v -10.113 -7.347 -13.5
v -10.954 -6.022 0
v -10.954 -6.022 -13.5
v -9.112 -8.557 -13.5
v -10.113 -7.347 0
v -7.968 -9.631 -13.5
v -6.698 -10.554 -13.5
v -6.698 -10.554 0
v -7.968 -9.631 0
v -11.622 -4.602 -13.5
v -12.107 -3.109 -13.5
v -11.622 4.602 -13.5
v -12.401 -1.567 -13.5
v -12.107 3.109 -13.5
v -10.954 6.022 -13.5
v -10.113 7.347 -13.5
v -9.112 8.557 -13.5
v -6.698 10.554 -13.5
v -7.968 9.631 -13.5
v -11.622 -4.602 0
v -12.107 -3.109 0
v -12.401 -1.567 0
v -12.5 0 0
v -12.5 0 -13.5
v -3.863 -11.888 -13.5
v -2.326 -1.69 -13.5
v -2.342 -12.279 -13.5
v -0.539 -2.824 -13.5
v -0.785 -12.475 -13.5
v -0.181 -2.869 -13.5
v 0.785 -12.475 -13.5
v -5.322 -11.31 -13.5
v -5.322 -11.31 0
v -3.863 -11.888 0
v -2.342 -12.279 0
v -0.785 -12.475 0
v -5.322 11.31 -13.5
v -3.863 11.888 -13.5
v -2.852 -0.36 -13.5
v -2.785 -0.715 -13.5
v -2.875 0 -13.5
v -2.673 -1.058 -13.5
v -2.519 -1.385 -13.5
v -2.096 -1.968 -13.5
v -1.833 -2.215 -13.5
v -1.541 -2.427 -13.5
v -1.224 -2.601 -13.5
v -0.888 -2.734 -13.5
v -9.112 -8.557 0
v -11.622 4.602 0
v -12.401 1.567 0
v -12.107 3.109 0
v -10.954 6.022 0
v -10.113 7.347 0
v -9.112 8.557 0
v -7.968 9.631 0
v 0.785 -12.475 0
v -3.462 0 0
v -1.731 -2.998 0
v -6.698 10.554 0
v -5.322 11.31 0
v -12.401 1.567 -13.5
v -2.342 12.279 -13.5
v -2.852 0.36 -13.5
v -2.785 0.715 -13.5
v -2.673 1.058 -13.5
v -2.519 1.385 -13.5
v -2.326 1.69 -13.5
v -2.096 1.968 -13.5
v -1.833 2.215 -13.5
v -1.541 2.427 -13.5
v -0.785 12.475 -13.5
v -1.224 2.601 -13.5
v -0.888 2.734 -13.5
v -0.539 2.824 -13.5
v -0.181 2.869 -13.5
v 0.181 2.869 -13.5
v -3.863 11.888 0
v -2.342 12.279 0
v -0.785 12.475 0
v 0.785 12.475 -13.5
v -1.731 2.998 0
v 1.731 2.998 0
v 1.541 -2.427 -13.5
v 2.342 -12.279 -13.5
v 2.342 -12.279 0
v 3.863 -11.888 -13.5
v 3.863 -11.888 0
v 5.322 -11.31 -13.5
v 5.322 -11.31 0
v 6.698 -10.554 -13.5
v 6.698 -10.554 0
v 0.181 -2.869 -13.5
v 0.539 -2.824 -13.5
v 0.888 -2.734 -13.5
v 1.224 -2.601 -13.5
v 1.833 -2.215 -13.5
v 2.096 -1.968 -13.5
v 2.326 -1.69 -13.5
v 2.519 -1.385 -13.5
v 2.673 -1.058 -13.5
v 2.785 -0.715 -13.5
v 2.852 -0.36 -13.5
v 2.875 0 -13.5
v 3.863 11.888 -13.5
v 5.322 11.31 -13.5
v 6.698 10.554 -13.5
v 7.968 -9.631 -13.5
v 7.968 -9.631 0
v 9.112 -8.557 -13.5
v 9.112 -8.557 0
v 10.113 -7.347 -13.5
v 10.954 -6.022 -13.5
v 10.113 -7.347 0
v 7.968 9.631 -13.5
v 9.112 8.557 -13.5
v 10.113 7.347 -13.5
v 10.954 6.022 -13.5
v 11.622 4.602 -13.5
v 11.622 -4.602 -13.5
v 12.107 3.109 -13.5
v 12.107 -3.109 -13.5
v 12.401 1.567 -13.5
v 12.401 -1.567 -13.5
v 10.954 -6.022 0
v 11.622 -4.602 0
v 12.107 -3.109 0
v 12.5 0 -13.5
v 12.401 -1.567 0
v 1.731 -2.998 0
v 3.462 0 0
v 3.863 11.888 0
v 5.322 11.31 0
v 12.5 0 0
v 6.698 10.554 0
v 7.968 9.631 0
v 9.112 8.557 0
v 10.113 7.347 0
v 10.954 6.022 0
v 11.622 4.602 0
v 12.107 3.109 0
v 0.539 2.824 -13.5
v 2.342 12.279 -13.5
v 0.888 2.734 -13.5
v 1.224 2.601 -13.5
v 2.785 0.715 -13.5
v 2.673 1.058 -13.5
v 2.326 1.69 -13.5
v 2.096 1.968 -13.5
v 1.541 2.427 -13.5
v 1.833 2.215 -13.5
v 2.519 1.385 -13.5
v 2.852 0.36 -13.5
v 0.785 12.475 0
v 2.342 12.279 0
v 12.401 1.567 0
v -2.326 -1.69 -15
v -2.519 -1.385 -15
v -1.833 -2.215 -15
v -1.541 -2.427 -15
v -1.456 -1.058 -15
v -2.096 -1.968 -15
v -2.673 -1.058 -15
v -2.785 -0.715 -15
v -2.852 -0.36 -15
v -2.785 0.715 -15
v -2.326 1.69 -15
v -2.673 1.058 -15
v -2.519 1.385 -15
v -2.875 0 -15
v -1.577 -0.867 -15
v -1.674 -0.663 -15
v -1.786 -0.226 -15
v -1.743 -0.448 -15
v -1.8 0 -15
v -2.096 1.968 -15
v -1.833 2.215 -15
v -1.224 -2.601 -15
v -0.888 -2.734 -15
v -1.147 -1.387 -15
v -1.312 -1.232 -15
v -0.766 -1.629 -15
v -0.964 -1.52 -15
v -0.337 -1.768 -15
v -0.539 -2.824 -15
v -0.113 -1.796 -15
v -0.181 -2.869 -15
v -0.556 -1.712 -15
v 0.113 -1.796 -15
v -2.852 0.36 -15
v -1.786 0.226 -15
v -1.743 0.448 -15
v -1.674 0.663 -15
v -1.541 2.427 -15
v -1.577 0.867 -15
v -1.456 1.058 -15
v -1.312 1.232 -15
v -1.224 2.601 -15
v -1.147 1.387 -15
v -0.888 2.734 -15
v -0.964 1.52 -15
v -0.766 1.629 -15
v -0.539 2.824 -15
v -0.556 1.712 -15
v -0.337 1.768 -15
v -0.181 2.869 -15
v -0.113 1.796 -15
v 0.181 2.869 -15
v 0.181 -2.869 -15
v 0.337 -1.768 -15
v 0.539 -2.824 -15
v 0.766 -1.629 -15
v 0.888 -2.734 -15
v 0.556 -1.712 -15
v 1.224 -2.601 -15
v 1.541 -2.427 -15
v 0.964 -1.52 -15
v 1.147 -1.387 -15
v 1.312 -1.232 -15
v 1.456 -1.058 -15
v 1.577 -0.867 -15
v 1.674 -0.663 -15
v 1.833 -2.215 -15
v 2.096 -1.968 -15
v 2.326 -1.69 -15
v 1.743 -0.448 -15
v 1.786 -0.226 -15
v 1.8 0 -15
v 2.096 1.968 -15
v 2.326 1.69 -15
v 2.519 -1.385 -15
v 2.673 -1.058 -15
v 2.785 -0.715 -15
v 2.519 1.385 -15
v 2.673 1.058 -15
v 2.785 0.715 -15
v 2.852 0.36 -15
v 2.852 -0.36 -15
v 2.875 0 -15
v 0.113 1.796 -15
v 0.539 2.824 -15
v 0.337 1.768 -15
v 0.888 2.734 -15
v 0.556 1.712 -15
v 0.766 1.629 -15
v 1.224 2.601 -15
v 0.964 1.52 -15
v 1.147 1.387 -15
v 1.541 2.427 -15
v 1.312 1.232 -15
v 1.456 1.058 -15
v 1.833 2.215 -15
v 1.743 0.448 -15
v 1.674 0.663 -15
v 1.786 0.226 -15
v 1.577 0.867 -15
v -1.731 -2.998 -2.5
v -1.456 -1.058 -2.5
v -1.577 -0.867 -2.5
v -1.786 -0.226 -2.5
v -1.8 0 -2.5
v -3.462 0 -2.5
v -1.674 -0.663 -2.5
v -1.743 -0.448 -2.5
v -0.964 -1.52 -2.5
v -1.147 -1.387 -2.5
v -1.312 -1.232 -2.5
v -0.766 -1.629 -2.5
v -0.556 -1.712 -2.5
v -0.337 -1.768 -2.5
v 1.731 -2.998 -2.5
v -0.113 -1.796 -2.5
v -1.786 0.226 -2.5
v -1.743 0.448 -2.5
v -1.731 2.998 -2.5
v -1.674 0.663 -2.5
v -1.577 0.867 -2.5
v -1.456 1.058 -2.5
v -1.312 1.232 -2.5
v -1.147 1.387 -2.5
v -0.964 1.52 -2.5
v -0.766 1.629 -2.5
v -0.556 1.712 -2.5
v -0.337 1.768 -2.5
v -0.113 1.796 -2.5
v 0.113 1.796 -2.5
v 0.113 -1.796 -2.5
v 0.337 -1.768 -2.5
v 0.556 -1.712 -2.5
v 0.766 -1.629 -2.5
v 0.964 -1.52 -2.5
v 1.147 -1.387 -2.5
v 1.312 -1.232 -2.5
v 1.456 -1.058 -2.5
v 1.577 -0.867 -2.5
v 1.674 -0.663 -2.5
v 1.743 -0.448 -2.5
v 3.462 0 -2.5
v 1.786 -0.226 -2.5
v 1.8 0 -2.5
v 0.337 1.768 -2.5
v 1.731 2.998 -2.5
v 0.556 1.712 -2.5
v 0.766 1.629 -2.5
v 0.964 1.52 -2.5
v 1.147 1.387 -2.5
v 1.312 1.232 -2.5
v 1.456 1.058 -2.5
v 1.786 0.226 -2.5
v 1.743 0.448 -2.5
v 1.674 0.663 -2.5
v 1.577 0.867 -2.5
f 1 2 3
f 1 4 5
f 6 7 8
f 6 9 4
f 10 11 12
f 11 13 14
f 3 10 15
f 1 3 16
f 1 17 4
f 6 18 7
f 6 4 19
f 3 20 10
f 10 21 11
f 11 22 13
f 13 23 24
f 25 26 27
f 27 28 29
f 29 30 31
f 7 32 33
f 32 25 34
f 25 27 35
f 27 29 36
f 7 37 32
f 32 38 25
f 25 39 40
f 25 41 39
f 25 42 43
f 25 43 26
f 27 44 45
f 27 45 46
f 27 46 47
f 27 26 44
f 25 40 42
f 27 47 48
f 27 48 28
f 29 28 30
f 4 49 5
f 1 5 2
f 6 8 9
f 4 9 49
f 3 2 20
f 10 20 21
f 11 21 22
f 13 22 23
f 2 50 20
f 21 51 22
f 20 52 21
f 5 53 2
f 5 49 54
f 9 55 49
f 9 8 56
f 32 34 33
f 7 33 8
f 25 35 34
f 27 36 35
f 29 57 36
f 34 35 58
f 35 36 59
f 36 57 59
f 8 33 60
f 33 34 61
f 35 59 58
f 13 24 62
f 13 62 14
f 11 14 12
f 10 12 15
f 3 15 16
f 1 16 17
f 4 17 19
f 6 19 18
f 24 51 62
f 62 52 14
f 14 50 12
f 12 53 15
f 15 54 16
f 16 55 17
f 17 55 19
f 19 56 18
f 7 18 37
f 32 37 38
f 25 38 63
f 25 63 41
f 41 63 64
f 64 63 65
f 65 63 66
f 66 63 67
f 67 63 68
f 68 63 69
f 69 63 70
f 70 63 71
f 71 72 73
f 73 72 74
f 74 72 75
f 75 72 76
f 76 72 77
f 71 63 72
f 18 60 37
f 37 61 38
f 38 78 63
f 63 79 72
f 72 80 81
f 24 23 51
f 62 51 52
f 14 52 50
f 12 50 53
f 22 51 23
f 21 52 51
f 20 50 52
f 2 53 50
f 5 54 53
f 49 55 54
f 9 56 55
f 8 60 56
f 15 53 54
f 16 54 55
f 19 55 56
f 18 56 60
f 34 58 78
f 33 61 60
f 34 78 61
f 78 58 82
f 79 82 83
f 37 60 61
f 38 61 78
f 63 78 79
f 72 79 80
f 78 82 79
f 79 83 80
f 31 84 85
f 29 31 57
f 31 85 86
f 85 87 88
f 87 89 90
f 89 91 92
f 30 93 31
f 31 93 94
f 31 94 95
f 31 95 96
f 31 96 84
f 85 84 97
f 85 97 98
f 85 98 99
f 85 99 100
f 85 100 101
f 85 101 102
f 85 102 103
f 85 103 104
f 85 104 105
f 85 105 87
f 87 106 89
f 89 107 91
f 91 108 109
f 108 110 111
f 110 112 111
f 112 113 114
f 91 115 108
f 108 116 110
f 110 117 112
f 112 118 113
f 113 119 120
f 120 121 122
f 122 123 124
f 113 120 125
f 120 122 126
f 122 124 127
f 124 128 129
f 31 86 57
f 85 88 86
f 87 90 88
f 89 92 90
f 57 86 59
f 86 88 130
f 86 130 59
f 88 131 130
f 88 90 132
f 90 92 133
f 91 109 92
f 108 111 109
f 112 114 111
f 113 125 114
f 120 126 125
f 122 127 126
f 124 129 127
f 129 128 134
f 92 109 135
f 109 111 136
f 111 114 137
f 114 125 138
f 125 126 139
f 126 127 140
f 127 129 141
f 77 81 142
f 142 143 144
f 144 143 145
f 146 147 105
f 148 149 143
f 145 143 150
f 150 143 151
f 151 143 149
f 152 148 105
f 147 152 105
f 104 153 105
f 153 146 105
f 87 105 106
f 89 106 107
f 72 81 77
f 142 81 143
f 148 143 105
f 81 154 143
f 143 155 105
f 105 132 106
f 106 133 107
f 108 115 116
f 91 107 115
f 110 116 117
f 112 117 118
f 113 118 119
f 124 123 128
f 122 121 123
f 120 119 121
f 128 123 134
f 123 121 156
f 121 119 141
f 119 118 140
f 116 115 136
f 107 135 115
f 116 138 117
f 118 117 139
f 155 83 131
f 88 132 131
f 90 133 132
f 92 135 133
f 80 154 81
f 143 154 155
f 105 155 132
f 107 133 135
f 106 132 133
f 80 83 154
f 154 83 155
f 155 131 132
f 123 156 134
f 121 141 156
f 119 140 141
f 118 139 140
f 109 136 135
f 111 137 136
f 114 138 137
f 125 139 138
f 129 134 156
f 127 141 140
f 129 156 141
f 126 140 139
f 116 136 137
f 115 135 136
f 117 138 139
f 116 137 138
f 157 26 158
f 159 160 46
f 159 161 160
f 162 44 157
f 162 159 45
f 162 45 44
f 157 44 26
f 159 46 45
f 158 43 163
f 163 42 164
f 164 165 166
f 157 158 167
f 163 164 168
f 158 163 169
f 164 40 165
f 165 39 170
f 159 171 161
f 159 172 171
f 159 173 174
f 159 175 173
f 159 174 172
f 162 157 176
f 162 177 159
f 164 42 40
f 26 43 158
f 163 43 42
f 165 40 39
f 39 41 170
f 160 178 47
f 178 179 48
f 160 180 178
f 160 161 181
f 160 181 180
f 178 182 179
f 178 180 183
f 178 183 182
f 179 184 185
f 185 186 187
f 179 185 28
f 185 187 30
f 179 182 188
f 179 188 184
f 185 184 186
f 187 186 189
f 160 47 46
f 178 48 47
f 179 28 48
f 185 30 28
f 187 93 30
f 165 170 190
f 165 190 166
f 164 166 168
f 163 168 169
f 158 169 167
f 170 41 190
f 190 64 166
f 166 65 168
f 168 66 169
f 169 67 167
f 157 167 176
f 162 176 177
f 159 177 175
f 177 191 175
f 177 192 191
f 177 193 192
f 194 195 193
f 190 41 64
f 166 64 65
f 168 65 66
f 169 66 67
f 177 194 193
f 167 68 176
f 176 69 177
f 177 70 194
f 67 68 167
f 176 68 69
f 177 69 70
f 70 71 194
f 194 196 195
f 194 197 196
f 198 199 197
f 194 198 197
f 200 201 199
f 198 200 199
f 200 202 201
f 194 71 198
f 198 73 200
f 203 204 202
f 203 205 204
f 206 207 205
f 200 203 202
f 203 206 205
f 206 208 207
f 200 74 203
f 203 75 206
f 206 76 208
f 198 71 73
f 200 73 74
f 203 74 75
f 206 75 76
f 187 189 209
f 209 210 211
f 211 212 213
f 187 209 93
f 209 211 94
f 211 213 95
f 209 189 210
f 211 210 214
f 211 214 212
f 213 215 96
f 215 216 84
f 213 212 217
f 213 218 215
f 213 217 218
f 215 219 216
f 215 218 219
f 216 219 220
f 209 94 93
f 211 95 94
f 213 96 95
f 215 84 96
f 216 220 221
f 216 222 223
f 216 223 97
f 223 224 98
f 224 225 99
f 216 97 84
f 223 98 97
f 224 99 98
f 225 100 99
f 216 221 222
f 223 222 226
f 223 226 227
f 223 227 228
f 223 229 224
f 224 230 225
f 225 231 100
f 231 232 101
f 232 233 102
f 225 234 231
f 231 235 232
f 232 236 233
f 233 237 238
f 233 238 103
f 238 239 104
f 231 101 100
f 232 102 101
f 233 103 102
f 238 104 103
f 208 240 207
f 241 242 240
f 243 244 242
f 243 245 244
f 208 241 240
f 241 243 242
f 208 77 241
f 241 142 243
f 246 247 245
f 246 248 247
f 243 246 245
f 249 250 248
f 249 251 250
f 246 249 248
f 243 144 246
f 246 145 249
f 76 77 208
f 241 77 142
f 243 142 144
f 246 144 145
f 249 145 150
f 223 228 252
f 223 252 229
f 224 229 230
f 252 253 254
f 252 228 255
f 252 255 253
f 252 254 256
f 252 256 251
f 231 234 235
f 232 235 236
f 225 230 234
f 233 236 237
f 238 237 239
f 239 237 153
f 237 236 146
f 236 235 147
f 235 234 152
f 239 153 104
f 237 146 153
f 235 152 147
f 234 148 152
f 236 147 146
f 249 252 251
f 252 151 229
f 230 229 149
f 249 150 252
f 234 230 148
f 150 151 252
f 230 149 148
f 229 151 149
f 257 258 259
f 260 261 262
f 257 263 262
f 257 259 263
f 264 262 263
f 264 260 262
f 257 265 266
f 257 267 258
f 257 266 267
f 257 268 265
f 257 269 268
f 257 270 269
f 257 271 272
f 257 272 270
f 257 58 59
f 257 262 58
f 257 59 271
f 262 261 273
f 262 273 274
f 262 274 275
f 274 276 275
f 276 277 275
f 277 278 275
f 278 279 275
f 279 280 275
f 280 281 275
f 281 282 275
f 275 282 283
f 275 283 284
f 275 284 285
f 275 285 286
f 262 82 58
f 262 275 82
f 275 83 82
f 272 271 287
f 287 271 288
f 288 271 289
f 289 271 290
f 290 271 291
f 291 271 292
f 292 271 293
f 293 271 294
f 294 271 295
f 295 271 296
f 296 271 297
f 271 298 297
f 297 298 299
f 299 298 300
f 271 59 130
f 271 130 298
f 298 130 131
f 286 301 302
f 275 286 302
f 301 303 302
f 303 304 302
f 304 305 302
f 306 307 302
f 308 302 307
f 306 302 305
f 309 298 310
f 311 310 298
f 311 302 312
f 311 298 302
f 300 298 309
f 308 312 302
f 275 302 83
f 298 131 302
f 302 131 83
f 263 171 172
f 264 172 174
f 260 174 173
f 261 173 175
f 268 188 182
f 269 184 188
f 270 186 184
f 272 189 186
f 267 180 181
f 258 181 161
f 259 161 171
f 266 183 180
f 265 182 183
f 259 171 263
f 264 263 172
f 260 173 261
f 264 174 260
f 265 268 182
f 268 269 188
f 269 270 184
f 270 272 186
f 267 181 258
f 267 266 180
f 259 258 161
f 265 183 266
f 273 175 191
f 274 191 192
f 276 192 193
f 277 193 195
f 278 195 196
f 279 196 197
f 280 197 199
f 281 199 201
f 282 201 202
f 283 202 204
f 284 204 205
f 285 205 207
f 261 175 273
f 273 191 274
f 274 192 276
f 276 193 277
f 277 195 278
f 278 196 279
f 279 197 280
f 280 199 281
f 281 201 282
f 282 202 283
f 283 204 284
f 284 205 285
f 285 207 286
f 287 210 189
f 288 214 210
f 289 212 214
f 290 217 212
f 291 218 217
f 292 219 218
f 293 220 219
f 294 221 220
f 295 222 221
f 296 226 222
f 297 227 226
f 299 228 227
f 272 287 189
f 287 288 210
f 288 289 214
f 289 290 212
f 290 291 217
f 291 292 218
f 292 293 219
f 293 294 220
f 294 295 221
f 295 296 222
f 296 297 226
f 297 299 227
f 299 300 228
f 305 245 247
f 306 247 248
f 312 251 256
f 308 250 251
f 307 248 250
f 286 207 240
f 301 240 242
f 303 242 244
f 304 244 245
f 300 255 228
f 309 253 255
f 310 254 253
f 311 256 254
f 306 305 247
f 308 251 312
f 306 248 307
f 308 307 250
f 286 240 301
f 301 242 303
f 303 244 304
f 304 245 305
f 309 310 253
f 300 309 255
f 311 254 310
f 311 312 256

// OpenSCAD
$fn = 50;

difference() {
	union() {
		translate(v = [0, 0, -13.5]) {
			cylinder(h = 13.5, r = 12.5);
		}
		#translate(v = [0, 0, -15.0]) {
			cylinder(h = 15, r = 2.875);
		}
	}
	union() {
		translate(v = [0, 0, 0]) {
			rotate(a = [0, 0, 0]) {
				difference() {
					union() {
						translate(v = [0, 0, -2.5]) {
							linear_extrude(height = 2.5) {
								polygon(points = [[3.4619999999999997, 0.0], [1.7310000000000003, 2.9981799479017264], [-1.7309999999999992, 2.9981799479017264], [-3.4619999999999997, 4.2397272186481365e-16], [-1.7310000000000014, -2.998179947901726], [1.7309999999999977, -2.9981799479017277]]);
							}
						}
					}
					union();
				}
			}
		}
		#translate(v = [0, 0, -100.0]) {
			cylinder(h = 200, r = 1.8);
		}
	}
}
